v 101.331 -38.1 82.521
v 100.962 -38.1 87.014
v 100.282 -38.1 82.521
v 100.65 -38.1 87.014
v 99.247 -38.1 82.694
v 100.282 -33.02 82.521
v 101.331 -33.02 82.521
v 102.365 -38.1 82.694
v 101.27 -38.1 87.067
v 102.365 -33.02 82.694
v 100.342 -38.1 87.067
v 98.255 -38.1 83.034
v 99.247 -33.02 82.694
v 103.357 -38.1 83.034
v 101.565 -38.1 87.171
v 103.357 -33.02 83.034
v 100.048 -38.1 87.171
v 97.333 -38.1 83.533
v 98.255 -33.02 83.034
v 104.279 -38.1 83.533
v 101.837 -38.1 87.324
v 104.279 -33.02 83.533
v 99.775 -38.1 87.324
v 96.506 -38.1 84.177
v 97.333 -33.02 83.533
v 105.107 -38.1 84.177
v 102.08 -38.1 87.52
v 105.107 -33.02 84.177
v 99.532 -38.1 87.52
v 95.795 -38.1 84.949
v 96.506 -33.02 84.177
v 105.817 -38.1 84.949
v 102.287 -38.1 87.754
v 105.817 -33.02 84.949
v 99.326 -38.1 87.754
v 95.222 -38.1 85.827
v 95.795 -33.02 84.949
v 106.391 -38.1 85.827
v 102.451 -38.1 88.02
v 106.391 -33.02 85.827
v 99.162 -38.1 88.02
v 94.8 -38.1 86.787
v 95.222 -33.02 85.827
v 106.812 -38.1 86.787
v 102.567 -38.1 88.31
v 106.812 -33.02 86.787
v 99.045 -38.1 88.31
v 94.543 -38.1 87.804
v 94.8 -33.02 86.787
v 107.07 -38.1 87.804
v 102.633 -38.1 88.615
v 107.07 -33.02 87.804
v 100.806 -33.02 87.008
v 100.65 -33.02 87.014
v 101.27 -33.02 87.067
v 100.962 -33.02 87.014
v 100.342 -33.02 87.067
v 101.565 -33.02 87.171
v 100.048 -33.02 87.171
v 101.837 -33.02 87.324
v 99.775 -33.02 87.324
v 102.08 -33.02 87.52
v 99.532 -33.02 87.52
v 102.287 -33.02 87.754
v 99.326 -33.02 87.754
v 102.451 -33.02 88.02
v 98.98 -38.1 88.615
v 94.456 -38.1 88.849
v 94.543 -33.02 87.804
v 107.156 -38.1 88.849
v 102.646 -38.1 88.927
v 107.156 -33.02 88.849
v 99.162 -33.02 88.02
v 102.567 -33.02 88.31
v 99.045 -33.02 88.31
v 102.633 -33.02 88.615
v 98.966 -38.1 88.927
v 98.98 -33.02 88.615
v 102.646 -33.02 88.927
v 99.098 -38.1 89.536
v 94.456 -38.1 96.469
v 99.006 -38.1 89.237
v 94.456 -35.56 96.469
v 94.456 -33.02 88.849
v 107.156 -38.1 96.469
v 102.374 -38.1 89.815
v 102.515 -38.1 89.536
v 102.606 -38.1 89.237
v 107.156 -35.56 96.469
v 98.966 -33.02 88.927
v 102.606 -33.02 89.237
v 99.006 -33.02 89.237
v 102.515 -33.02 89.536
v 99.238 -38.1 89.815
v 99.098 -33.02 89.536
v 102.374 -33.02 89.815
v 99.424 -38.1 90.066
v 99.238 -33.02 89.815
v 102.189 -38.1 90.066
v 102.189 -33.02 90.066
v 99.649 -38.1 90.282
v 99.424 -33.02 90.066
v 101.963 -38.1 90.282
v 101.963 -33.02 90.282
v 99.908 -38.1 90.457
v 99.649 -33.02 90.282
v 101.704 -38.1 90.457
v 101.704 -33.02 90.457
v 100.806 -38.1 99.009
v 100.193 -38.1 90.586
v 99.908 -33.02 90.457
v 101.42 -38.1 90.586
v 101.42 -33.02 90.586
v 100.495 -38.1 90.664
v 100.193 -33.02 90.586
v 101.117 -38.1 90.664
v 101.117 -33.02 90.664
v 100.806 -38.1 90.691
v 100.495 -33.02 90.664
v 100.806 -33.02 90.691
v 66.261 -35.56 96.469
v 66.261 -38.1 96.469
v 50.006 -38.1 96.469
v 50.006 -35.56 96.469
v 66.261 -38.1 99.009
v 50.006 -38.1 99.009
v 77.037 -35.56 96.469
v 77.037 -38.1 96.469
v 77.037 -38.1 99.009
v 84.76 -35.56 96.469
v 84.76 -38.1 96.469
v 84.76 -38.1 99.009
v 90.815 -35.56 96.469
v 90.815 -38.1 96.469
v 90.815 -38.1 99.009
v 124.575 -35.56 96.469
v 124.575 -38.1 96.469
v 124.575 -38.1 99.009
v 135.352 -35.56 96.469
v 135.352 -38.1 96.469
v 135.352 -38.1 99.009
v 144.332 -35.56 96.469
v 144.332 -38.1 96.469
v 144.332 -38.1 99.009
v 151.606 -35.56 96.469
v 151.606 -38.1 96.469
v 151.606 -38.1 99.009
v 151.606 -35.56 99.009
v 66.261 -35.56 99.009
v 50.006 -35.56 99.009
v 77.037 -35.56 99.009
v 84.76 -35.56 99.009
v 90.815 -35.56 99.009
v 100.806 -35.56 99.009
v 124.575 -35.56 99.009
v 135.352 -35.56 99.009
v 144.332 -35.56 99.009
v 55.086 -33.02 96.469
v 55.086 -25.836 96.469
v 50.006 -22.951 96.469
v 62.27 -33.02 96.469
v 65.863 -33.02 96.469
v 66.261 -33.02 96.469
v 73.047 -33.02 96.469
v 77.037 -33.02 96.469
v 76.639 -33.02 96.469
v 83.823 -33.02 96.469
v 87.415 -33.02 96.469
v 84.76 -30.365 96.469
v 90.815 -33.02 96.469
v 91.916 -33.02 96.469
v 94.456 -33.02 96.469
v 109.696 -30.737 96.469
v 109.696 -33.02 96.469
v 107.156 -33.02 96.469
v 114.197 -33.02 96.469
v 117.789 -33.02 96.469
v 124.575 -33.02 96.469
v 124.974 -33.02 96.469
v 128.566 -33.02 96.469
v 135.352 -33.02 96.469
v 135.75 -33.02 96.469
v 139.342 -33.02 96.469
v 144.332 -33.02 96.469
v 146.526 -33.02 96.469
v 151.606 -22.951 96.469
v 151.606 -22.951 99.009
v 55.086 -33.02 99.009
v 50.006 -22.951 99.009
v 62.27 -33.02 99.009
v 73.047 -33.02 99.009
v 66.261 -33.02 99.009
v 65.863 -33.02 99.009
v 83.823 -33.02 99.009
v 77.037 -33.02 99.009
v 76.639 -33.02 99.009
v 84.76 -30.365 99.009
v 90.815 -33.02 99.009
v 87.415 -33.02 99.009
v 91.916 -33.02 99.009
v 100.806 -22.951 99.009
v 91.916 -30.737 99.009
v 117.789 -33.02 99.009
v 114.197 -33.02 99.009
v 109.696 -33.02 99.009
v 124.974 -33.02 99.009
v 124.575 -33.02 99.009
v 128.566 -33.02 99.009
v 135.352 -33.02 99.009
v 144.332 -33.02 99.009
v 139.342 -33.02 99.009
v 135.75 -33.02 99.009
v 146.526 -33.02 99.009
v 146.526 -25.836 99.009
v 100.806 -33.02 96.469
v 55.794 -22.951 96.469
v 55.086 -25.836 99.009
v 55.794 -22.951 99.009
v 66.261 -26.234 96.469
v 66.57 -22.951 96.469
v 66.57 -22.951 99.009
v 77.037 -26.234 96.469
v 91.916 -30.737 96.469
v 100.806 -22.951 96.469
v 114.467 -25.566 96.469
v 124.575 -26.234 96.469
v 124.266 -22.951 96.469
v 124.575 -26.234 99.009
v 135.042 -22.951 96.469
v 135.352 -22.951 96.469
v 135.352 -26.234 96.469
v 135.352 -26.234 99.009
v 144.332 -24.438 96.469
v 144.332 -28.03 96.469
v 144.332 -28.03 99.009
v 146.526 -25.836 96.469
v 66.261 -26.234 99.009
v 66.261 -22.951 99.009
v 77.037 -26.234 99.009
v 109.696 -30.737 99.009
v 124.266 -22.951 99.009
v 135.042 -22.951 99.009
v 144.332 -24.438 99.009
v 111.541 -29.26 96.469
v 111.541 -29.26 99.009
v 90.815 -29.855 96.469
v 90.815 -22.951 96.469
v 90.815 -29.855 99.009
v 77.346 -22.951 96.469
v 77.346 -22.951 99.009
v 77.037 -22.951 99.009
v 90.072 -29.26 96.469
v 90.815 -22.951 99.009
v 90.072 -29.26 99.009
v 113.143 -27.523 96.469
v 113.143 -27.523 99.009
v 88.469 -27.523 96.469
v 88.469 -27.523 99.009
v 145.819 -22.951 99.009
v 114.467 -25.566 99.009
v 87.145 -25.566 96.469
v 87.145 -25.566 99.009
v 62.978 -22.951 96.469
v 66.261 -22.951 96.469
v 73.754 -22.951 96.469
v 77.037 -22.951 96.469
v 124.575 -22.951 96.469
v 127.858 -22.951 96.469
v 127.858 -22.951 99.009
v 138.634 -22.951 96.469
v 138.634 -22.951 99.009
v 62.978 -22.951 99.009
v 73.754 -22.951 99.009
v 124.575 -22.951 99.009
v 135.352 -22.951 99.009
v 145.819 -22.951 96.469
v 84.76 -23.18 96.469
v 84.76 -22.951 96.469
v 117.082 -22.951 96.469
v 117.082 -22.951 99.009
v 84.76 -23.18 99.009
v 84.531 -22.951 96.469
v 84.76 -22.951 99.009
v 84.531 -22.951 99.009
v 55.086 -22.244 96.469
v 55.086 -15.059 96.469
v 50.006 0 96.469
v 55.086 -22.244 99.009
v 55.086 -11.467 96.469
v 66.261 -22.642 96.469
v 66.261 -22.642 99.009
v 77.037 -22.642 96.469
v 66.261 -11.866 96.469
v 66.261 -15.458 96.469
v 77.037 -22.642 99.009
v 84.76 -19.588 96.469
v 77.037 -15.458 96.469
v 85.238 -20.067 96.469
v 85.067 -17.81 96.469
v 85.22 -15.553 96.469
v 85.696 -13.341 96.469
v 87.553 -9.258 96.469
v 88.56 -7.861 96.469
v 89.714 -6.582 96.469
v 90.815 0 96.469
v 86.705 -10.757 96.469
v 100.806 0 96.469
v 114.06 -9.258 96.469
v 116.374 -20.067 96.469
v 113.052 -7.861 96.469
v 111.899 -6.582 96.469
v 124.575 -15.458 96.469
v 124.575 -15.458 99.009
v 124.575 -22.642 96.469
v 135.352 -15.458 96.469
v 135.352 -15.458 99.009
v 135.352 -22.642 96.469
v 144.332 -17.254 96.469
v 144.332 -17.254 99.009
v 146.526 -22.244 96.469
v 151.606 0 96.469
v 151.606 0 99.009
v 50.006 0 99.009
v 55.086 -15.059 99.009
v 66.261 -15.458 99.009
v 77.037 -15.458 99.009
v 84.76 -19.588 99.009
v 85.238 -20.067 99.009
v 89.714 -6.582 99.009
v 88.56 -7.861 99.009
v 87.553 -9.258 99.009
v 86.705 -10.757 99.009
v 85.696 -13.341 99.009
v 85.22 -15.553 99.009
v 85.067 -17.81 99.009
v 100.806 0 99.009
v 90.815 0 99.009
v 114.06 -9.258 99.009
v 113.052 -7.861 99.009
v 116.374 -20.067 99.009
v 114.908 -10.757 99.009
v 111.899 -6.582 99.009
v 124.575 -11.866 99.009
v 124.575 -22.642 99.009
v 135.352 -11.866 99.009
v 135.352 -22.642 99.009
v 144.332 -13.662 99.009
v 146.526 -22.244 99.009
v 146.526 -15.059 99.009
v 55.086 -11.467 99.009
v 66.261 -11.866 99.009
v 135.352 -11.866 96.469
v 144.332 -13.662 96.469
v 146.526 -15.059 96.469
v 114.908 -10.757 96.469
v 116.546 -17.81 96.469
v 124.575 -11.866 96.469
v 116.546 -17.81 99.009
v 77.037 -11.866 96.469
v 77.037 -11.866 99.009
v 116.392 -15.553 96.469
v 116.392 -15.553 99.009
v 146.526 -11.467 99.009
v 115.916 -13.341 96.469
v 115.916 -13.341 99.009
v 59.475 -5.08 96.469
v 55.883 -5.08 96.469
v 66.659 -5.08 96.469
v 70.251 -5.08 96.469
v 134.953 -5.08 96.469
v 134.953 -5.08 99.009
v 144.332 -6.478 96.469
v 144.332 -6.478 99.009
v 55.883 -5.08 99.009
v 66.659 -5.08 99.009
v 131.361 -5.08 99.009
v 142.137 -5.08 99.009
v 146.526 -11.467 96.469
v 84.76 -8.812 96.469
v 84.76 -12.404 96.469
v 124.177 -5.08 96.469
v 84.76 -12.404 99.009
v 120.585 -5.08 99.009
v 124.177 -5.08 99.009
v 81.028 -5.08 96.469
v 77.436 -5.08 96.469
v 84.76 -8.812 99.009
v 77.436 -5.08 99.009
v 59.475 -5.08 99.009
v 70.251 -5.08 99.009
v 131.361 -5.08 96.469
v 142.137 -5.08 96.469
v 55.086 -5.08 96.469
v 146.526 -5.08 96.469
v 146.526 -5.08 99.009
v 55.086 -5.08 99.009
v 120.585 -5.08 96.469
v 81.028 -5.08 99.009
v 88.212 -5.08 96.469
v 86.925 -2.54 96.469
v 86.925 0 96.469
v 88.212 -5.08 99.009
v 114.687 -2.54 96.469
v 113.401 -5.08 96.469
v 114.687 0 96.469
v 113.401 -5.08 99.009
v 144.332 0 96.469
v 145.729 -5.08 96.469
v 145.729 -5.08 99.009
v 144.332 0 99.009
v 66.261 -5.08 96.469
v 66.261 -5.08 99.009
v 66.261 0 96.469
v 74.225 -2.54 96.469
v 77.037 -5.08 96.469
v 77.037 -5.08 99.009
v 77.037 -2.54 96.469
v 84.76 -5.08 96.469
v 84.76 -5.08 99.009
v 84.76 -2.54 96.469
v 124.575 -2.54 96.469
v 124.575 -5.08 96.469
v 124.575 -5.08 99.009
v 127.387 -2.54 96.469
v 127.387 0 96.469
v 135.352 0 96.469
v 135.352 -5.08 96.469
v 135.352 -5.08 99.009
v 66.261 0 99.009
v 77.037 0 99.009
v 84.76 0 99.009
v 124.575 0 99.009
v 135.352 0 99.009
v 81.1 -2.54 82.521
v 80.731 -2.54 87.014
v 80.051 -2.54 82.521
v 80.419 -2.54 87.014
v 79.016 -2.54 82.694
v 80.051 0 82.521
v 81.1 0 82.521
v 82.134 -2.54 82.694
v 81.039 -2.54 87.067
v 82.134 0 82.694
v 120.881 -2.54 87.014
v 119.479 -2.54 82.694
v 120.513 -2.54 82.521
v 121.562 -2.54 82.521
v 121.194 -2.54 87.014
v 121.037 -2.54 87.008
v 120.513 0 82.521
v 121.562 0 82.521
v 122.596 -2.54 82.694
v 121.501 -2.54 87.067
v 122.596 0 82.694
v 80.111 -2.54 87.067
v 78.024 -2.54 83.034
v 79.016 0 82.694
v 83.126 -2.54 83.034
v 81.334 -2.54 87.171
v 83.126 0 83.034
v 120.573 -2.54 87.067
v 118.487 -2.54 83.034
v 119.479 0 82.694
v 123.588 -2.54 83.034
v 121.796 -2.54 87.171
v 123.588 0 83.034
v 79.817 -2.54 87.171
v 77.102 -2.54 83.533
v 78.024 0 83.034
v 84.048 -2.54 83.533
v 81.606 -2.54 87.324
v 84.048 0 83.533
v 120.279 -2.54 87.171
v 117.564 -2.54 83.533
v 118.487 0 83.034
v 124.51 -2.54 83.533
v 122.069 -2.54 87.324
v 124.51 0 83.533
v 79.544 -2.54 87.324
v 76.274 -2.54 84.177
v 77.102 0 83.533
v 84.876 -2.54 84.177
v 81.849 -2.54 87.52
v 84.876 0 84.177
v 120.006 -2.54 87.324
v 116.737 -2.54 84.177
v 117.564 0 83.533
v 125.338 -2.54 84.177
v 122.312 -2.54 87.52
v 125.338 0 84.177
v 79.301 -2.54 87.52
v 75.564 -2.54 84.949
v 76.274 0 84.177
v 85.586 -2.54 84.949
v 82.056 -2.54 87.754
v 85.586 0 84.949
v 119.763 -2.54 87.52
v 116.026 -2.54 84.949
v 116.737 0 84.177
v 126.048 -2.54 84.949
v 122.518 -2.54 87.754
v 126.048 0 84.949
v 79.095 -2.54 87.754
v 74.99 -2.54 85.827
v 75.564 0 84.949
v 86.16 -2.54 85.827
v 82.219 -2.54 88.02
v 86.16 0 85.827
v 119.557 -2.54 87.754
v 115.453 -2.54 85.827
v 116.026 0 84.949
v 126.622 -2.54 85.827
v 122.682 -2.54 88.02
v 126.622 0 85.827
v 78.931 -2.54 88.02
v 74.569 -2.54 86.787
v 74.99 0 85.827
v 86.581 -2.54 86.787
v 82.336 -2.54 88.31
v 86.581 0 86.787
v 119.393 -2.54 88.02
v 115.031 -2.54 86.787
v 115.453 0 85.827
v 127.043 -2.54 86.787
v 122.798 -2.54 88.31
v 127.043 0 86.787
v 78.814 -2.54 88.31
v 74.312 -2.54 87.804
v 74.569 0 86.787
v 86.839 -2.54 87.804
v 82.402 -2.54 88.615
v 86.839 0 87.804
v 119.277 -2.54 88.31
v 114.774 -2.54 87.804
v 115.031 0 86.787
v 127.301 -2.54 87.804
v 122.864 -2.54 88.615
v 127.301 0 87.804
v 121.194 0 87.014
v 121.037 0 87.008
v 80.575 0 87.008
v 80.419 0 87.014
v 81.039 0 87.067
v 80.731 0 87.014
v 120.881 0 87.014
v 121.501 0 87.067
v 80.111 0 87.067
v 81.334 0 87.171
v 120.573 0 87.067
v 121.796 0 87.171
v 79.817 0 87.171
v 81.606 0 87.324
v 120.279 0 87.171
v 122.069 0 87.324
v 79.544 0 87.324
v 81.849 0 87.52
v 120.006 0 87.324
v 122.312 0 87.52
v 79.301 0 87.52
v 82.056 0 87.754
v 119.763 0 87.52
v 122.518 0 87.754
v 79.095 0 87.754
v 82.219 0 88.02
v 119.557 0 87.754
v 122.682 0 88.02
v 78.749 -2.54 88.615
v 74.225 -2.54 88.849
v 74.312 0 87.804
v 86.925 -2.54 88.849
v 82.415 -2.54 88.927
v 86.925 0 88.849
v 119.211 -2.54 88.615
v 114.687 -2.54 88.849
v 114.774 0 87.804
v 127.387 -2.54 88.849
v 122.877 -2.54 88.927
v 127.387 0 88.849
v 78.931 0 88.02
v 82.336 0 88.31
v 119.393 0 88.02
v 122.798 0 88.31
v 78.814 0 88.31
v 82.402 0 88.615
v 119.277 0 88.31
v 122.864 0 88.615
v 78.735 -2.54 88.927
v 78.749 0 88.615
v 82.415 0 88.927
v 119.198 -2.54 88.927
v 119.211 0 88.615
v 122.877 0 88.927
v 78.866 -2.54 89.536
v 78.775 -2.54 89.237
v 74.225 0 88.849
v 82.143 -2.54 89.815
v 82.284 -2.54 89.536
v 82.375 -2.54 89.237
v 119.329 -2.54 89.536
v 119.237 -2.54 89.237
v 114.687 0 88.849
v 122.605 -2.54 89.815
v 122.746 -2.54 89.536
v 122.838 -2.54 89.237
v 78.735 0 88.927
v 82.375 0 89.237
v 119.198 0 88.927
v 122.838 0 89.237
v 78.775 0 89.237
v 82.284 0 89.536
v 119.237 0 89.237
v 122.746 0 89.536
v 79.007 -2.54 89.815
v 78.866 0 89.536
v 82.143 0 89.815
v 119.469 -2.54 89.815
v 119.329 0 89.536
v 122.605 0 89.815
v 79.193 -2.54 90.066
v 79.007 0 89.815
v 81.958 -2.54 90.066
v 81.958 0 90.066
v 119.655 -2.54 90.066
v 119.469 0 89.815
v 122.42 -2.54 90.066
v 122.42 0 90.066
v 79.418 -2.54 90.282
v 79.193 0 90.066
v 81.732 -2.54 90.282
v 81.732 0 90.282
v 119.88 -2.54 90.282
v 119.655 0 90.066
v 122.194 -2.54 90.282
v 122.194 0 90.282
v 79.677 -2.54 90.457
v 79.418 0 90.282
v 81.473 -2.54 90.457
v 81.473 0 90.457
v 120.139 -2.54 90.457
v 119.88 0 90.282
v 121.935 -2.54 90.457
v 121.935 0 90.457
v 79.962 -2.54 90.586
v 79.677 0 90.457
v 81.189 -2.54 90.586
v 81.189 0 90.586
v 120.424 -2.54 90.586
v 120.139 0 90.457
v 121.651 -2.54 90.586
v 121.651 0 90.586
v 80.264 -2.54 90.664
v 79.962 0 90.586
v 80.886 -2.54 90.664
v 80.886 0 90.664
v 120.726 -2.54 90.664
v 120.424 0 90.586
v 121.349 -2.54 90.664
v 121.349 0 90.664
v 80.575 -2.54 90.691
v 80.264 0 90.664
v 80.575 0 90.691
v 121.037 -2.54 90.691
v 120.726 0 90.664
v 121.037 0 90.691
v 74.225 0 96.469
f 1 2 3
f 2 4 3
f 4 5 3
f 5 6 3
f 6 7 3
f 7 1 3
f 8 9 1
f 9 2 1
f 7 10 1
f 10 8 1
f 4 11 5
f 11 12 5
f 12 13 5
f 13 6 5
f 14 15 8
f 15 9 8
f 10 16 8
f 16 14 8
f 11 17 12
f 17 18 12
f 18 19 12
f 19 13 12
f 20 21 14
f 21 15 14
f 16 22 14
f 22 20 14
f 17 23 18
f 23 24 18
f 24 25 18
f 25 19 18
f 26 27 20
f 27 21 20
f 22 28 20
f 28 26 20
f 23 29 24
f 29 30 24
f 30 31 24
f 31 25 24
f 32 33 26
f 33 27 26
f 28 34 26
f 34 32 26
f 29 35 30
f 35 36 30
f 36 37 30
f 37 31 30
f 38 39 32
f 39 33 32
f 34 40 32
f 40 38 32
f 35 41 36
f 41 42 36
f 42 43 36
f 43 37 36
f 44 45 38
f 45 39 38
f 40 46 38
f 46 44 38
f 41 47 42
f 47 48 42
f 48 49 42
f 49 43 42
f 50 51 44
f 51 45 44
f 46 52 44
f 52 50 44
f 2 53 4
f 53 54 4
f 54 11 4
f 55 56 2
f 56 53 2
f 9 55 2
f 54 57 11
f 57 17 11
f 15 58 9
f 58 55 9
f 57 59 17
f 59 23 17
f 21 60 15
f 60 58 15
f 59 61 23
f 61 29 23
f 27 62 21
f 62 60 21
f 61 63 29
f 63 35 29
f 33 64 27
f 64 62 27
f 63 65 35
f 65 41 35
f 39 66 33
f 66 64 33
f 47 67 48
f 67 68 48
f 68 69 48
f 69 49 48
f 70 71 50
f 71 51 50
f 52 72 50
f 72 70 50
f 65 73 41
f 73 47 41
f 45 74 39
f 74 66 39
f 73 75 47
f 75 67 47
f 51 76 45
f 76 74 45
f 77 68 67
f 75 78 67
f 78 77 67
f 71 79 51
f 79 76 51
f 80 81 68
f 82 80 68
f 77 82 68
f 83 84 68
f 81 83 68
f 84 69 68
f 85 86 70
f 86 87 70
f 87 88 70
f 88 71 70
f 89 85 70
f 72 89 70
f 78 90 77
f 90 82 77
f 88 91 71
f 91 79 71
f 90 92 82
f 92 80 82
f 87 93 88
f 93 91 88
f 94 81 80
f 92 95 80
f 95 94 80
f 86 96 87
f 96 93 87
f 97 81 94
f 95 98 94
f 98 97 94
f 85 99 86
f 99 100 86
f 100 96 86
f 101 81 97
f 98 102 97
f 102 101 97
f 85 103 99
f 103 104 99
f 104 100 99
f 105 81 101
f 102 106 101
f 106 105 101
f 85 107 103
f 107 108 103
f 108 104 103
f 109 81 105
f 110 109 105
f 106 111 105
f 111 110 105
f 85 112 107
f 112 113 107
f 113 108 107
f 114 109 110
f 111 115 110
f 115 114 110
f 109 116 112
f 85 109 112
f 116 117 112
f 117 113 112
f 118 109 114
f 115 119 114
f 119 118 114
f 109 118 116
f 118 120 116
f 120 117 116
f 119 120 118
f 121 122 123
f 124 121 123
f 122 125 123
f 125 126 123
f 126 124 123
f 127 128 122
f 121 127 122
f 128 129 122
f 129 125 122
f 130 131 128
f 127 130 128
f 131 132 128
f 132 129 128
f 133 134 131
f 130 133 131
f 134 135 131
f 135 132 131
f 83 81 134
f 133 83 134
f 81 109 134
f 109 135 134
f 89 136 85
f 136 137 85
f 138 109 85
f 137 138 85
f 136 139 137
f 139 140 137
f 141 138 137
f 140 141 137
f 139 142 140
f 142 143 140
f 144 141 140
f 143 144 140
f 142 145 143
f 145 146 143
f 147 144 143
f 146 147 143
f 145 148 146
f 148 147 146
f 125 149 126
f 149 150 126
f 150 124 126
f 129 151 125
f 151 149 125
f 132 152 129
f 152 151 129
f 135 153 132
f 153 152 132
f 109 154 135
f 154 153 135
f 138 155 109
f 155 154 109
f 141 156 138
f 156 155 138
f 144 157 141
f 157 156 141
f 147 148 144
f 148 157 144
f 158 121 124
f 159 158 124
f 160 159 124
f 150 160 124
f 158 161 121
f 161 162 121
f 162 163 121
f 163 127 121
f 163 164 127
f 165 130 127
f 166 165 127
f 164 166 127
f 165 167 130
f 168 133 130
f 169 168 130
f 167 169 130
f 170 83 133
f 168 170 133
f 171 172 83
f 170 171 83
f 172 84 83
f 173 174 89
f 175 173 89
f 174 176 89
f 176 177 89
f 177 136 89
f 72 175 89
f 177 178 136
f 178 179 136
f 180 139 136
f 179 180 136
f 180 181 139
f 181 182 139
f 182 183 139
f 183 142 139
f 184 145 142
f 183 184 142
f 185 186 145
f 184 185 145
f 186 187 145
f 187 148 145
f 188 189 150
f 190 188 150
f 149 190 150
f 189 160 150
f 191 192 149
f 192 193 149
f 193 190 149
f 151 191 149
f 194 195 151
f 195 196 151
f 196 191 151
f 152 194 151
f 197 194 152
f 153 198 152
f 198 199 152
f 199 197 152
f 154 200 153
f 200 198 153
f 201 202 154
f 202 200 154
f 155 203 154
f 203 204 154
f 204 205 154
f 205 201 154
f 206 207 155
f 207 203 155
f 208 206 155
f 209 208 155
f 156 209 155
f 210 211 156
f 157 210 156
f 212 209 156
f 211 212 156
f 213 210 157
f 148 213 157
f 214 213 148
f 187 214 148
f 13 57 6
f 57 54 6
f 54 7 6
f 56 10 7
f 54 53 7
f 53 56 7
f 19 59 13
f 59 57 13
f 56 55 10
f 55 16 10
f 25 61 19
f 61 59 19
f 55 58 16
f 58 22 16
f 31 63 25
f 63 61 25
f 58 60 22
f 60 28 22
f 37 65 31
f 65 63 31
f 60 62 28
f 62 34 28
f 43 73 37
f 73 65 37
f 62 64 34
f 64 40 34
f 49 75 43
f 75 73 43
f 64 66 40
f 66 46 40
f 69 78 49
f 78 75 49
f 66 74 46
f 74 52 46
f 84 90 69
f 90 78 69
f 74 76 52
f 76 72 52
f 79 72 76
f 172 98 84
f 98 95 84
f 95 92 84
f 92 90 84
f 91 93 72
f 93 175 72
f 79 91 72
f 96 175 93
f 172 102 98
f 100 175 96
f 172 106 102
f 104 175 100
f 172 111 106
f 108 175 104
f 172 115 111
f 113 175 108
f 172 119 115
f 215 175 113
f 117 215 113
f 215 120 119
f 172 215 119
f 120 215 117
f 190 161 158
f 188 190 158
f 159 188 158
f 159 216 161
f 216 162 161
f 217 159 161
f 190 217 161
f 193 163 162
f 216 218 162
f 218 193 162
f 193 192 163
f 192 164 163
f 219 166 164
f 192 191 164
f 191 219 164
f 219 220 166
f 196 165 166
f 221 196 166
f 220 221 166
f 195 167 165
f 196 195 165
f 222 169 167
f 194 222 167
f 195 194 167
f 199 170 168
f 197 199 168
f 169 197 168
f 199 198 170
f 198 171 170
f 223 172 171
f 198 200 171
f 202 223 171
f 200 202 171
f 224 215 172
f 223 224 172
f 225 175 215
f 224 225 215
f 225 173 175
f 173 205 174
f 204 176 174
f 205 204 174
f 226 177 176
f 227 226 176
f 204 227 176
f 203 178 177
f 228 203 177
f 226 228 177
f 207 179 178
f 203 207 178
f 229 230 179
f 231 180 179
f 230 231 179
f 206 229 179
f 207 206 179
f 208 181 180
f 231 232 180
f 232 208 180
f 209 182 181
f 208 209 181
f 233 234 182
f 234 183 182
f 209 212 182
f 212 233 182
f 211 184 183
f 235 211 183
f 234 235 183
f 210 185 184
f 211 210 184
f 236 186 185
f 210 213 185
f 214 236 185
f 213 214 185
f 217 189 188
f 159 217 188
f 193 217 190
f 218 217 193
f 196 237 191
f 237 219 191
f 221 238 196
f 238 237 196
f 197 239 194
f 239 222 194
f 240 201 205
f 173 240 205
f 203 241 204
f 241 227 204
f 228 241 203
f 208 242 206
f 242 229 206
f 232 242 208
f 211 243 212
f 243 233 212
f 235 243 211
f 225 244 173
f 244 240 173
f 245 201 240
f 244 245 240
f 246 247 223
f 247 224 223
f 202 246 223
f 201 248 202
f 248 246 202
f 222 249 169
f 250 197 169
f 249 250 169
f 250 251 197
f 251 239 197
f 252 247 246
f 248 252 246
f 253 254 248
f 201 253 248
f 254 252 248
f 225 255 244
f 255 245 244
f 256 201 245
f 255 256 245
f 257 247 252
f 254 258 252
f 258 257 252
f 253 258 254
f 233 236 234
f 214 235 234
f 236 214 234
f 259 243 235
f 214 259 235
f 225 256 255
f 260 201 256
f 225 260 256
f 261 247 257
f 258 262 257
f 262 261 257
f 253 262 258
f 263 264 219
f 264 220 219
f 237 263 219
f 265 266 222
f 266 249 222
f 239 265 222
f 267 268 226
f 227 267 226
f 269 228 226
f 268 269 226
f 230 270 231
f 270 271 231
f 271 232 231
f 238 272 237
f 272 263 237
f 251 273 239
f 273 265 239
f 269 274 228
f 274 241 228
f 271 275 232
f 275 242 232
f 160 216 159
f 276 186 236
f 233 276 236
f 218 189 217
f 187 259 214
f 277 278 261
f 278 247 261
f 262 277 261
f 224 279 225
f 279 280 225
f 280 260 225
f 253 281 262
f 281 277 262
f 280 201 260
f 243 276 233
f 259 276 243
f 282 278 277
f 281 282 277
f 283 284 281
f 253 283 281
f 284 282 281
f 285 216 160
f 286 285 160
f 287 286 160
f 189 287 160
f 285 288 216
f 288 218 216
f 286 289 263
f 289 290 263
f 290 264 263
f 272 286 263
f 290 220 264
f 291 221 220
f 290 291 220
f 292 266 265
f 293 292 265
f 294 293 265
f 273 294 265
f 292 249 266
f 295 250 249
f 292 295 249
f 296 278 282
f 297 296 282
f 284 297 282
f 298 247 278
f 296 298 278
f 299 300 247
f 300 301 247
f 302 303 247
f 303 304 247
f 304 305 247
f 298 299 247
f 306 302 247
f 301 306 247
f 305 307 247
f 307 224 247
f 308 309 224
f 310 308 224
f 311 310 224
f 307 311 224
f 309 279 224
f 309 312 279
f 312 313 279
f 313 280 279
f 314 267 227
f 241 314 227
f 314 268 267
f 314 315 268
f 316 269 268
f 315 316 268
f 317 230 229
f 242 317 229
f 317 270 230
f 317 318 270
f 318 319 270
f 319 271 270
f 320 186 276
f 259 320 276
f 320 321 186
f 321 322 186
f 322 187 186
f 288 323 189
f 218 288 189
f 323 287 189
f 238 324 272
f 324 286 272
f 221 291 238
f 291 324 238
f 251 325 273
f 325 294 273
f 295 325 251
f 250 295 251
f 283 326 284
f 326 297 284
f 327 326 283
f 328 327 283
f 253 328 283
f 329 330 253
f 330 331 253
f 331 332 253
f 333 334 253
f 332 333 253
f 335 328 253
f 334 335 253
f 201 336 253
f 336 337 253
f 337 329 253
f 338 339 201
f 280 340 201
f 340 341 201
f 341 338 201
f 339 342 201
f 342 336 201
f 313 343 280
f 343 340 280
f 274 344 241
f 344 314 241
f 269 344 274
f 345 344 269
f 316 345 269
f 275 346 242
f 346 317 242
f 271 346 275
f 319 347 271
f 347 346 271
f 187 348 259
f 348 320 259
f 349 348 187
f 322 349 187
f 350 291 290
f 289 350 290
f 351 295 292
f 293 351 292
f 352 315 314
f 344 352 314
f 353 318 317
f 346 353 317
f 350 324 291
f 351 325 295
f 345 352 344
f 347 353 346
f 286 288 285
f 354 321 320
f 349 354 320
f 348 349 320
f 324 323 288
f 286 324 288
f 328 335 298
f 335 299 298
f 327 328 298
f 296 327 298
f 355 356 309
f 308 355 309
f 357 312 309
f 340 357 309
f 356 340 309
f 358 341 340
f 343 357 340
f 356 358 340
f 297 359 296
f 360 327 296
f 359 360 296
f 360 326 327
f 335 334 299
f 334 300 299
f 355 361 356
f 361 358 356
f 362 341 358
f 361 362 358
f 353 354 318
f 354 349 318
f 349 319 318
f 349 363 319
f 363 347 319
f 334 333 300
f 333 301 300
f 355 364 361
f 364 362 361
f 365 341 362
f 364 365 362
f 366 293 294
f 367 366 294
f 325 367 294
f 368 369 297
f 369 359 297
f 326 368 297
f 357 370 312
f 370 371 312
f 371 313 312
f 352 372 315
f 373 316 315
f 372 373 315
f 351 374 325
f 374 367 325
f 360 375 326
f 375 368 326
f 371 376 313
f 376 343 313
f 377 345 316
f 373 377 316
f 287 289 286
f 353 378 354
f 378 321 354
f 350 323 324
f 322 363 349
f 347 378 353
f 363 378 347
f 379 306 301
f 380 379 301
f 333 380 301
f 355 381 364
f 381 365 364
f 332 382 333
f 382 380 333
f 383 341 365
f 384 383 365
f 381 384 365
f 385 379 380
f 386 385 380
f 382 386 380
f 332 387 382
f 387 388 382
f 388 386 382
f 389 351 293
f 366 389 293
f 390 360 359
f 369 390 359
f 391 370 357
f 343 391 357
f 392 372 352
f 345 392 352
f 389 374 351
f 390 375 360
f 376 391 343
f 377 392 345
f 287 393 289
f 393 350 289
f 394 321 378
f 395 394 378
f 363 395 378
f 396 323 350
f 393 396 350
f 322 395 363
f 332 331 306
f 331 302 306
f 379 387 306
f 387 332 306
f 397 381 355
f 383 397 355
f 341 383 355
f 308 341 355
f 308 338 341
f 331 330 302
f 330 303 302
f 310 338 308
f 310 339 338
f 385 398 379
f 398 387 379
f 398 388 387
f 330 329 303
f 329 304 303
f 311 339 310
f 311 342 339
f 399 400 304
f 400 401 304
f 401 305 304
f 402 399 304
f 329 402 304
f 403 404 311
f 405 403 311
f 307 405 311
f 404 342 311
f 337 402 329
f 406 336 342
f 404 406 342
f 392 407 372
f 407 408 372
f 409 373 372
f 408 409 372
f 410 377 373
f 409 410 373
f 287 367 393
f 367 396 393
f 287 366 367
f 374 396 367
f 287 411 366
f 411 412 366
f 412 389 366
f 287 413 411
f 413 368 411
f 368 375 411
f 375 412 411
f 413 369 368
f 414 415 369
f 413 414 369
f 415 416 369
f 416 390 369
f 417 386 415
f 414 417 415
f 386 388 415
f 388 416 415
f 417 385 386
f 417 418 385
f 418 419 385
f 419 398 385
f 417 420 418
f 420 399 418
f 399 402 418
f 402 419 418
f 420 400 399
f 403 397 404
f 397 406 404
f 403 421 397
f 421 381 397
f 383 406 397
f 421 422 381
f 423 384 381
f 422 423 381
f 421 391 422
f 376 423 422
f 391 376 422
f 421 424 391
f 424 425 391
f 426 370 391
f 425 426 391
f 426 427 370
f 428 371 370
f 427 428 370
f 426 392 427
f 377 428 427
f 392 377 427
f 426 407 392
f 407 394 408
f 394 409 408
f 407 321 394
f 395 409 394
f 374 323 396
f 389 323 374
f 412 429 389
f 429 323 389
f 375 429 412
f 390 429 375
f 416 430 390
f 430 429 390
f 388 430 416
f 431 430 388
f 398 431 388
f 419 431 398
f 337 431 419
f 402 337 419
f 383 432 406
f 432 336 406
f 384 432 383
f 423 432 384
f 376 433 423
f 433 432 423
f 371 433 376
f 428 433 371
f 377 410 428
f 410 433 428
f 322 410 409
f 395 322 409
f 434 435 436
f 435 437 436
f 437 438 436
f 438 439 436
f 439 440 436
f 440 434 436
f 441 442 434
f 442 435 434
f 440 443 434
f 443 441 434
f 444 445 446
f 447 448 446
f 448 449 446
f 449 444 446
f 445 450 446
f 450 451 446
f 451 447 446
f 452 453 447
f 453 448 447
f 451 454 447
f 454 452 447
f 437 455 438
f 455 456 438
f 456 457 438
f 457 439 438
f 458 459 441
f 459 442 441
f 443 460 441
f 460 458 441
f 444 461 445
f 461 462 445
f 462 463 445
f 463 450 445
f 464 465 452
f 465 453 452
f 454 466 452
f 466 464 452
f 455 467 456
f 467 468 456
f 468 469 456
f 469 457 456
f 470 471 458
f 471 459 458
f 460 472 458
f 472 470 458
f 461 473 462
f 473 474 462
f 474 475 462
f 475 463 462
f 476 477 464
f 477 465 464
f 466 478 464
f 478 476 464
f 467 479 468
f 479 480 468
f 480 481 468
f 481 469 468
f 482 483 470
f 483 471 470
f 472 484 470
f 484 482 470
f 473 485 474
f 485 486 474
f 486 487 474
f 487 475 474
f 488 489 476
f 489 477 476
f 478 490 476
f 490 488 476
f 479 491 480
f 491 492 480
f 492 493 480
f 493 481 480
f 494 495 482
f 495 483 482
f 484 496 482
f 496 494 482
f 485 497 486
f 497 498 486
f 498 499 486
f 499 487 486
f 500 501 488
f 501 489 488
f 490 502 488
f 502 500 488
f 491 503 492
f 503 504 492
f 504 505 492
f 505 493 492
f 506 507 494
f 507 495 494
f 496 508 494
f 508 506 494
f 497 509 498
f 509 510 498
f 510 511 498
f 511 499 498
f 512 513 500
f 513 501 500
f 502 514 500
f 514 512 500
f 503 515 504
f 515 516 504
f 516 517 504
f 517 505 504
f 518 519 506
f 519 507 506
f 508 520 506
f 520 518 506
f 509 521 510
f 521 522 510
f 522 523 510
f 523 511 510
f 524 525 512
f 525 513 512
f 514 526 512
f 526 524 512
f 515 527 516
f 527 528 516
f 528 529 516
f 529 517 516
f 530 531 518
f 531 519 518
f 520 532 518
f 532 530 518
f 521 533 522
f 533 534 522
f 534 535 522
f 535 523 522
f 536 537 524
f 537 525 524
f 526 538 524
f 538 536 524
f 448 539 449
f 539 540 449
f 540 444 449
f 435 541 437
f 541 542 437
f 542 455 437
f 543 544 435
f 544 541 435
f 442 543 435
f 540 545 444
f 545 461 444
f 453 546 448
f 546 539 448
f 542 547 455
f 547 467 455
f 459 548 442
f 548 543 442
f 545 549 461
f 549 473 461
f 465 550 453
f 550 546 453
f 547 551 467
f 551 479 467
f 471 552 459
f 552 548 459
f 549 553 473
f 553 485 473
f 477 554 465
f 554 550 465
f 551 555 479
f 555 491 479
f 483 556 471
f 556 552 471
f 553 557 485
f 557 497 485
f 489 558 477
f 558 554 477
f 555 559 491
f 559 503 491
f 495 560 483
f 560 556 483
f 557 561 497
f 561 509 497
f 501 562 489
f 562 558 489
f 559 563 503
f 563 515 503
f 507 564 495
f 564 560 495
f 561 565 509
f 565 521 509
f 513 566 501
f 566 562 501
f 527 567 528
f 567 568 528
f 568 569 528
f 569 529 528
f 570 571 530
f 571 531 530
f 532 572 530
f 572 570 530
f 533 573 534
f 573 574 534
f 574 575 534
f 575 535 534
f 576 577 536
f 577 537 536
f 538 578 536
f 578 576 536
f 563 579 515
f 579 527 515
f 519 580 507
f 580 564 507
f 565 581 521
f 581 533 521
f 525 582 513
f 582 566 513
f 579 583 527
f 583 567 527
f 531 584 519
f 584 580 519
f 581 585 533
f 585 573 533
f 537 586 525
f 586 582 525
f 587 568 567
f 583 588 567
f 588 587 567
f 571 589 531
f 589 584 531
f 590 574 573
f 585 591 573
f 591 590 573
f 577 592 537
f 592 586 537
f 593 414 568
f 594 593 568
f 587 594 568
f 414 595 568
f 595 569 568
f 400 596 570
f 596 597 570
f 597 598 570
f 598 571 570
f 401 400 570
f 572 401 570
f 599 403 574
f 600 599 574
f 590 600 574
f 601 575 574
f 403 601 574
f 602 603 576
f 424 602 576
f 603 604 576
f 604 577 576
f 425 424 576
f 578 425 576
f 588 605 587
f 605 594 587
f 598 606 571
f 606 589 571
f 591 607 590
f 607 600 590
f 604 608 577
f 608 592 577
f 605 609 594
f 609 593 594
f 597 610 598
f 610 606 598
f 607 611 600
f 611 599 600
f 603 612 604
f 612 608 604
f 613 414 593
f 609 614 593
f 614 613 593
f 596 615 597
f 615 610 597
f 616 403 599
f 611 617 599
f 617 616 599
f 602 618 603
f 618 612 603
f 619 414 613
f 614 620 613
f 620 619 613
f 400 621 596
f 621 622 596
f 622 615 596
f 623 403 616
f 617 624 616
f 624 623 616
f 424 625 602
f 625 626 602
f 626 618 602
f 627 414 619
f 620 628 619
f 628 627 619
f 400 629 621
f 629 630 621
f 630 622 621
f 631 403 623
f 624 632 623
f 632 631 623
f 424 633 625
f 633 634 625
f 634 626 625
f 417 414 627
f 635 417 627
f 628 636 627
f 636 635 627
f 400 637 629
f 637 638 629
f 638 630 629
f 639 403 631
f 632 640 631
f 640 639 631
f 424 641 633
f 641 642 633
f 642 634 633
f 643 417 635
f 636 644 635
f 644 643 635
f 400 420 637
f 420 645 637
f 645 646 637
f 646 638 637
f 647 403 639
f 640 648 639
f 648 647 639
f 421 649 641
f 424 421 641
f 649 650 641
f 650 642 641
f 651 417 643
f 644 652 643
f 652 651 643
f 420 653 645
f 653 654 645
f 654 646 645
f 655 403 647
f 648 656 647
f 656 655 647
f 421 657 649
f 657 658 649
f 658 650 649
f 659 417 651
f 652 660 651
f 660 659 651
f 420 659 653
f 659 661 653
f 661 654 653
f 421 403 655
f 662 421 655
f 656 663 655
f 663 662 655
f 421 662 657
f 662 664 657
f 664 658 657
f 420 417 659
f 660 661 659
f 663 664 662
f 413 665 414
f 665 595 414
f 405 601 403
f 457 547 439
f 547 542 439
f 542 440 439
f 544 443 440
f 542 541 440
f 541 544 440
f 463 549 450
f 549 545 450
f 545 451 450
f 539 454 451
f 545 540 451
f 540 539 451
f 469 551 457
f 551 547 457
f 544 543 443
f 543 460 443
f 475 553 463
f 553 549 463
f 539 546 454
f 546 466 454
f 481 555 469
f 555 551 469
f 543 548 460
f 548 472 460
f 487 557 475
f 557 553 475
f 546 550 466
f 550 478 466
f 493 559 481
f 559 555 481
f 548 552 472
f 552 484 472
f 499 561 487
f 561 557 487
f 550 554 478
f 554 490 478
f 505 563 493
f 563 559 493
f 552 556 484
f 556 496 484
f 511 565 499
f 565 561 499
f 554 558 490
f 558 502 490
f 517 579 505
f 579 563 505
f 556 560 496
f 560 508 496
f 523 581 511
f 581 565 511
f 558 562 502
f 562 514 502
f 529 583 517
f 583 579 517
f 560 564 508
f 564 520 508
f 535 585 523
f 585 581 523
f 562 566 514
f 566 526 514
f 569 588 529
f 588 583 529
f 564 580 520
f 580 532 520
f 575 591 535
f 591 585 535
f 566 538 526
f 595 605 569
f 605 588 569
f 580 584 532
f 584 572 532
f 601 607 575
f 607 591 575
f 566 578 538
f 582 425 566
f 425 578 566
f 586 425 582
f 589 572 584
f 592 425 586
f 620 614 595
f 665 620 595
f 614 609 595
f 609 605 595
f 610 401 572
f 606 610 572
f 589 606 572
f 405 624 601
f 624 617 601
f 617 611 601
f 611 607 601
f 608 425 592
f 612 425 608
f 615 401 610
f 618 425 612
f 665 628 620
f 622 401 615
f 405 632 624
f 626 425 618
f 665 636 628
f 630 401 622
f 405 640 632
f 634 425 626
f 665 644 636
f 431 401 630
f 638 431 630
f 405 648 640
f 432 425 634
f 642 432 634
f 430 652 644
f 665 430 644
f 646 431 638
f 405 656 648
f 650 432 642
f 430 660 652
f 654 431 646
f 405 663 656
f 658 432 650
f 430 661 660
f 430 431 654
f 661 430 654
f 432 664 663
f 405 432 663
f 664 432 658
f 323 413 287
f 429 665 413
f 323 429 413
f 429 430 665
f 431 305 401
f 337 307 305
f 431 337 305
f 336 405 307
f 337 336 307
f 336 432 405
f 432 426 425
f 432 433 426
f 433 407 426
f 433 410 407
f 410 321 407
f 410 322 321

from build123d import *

# Parameters (mm, degrees)
SKETCH1_R               = 13.8795
SKETCH1_R_2             = 13.8811
SKETCH1_R_3             = 2.54
SKETCH1_W               = 163.5125
SKETCH1_H               = 30.6038
BOSS_EXTRUDE1_DEPTH     = 5.08
SKETCH3_W               = 101.6
SKETCH3_H               = 2.54
BOSS_EXTRUDE4_DEPTH     = 38.1
SKETCH7_W               = 7.620008307
SKETCH7_H               = 5.08
BOSS_EXTRUDE5_DEPTH     = 11.43
FILLET5_RADIUS          = 3.810004153
FILLET5_LENGTH          = 5.08
BOSS_EXTRUDE6_DEPTH     = 2.54
SKETCH15_R              = 1.8415
BOSS_EXTRUDE7_DEPTH     = 2.54
CUT_EXTRUDE3_START      = -5.08
SKETCH19_R              = 1.8415
CUT_EXTRUDE3_DEPTH      = 5.08
SKETCH12_W              = 155.030782426
SKETCH12_H              = 26.837151361
CUT_EXTRUDE4_DEPTH      = 229.935471644
CUT_EXTRUDE5_DEPTH      = 2.54
FILLET6_R               = 2.54
BOSS_EXTRUDE8_DEPTH     = 5.08
CUT_EXTRUDE6_DEPTH      = 186.437362631
CUT_EXTRUDE6_DEPTH_BACK = 186.437362631
SKETCH23_R              = 1.8415
SKETCH25_R              = 14.498901864
CUT_EXTRUDE7_DEPTH      = 2.54
SKETCH26_W              = 2.812159358
SKETCH26_H              = 2.54
SKETCH26_W_2            = 3.243179234
BOSS_EXTRUDE9_DEPTH     = 38.1


with BuildPart() as part:
    # Sketch1 → Boss-Extrude1 (new body)
    with BuildSketch(Plane(origin=(0, 0, 0), x_dir=(1, 0, 0), z_dir=(0, 1, 0))):
        with BuildLine():
            Line((0, 0), (201.6125, 0))
            Line((201.6125, 0), (201.6125, -45.847))
            Line((201.6125, -45.847), (166.66845, -45.847))
            Line((166.66845, -45.847), (166.66845, -83.7692))
            ThreePointArc((166.66845, -83.7692), (162.204757345, -94.545507345), (151.42845, -99.0092))
            Line((151.42845, -99.0092), (50.18405, -99.0092))
            ThreePointArc((50.18405, -99.0092), (39.407742655, -94.545507345), (34.94405, -83.7692))
            Line((34.94405, -83.7692), (34.94405, -45.847))
            Line((34.94405, -45.847), (0, -45.847))
            Line((0, -45.847), (0, 0))
        make_face()
        with Locations(Location((60.34405, -72.4265, 0), (0, 0, 270))):
            Circle(SKETCH1_R, mode=Mode.SUBTRACT)
        with Locations(Location((141.26845, -72.4281, 0), (0, 0, 270))):
            Circle(SKETCH1_R_2, mode=Mode.SUBTRACT)
        with Locations(Location((13.096875, -9.7139, 0), (0, 0, 270))):
            Circle(SKETCH1_R_3, mode=Mode.SUBTRACT)
        with Locations(Location((188.515625, -9.7139, 0), (0, 0, 270))):
            Circle(SKETCH1_R_3, mode=Mode.SUBTRACT)
        with Locations(Location((13.096875, -36.1299, 0), (0, 0, 270))):
            Circle(SKETCH1_R_3, mode=Mode.SUBTRACT)
        with Locations(Location((188.515625, -36.1299, 0), (0, 0, 270))):
            Circle(SKETCH1_R_3, mode=Mode.SUBTRACT)
        with Locations(Location((100.80625, -72.4281, 0), (0, 0, 270))):
            Circle(SKETCH1_R_2, mode=Mode.SUBTRACT)
        with Locations((100.80625, -22.9219)):
            Rectangle(SKETCH1_W, SKETCH1_H, mode=Mode.SUBTRACT)
    extrude(amount=BOSS_EXTRUDE1_DEPTH)

    # Sketch3 → Boss-Extrude4 (add)
    with BuildSketch(Plane(origin=(0, 0, 198.0184), x_dir=(-1, 0, 0), z_dir=(0, 1, 0))):
        with Locations((-100.80625, -100.2792)):
            Rectangle(SKETCH3_W, SKETCH3_H)
    extrude(amount=-BOSS_EXTRUDE4_DEPTH)

    # Sketch7 → Boss-Extrude5 (add)
    with BuildSketch(Plane(origin=(0, 0, 99.0092), x_dir=(1, 0, 0), z_dir=(0, 0, -1))):
        with Locations((100.806245847, 35.56)):
            Rectangle(SKETCH7_W, SKETCH7_H)
    extrude(amount=BOSS_EXTRUDE5_DEPTH)

    # Fillet5: full round fillet: the end face becomes a half cylinder, R = half its width
    fillet5_face = Plane((100.806245847, -35.56, 87.5792), x_dir=(0, 1, 0), z_dir=(0, 0, -1))  # on the end face: x along it, z out of the body
    fillet5_slab = fillet5_face.offset(-FILLET5_RADIUS / 2) * Box(FILLET5_LENGTH, 2 * FILLET5_RADIUS, FILLET5_RADIUS, mode=Mode.PRIVATE)  # the body's end, R deep
    fillet5_round = Plane((100.806245847, -35.56, 91.389204153), x_dir=(0, 0, -1), z_dir=(0, 1, 0)) * Cylinder(FILLET5_RADIUS, FILLET5_LENGTH, mode=Mode.PRIVATE)  # its axis R under the face
    add(fillet5_slab - fillet5_round, mode=Mode.SUBTRACT)

    # Sketch14 → Boss-Extrude6 (add)
    with BuildSketch(Plane(origin=(0, 0, 99.0092), x_dir=(-1, 0, 0), z_dir=(0, 0, -1))):
        with BuildLine():
            Line((-106.692297799, -23.852483199), (-108.165059803, -25.325245202))
            ThreePointArc((-108.165059803, -25.325245202), (-108.695299399, -24.799048835), (-109.188003193, -24.237551179))
            Line((-109.188003193, -24.237551179), (-111.016232612, -25.73340078))
            ThreePointArc((-111.016232612, -25.73340078), (-112.008576056, -24.346487635), (-112.813712744, -22.843148519))
            Line((-112.813712744, -22.843148519), (-110.663621263, -21.864835961))
            ThreePointArc((-110.663621263, -21.864835961), (-111.169570673, -20.523896068), (-111.494018753, -19.127888173))
            Line((-111.494018753, -19.127888173), (-113.825236675, -19.509217219))
            ThreePointArc((-113.825236675, -19.509217219), (-113.991174734, -17.81194348), (-113.936774001, -16.107445271))
            Line((-113.936774001, -16.107445271), (-111.585583879, -16.335247483))
            ThreePointArc((-111.585583879, -16.335247483), (-111.353278975, -14.920984767), (-110.936255307, -13.549782426))
            Line((-110.936255307, -13.549782426), (-113.145813772, -12.714414106))
            ThreePointArc((-113.145813772, -12.714414106), (-112.440883477, -11.161562901), (-111.541521956, -9.712624518))
            Line((-111.541521956, -9.712624518), (-109.619232687, -11.085502082))
            ThreePointArc((-109.619232687, -11.085502082), (-108.71091938, -9.976867094), (-107.664165119, -8.997882867))
            Line((-107.664165119, -8.997882867), (-109.160014721, -7.169653447))
            ThreePointArc((-109.160014721, -7.169653447), (-107.773101576, -6.177310003), (-106.26976246, -5.372173315))
            Line((-106.26976246, -5.372173315), (-105.291449901, -7.522264796))
            ThreePointArc((-105.291449901, -7.522264796), (-103.950510009, -7.016315387), (-102.554502114, -6.691867307))
            Line((-102.554502114, -6.691867307), (-102.93583116, -4.360649385))
            ThreePointArc((-102.93583116, -4.360649385), (-101.238557421, -4.194711325), (-99.534059212, -4.249112058))
            Line((-99.534059212, -4.249112058), (-99.761861424, -6.600302181))
            ThreePointArc((-99.761861424, -6.600302181), (-98.347598708, -6.832607085), (-96.976396367, -7.249630753))
            Line((-96.976396367, -7.249630753), (-96.141028047, -5.040072288))
            ThreePointArc((-96.141028047, -5.040072288), (-94.588176842, -5.745002582), (-93.139238459, -6.644364103))
            Line((-93.139238459, -6.644364103), (-94.512116023, -8.566653372))
            ThreePointArc((-94.512116023, -8.566653372), (-93.403481035, -9.474966679), (-92.424496807, -10.52172094))
            Line((-92.424496807, -10.52172094), (-90.596267388, -9.025871338))
            ThreePointArc((-90.596267388, -9.025871338), (-89.603923944, -10.412784483), (-88.798787256, -11.9161236))
            Line((-88.798787256, -11.9161236), (-90.948878737, -12.894436158))
            ThreePointArc((-90.948878737, -12.894436158), (-90.442929327, -14.23537605), (-90.118481247, -15.631383945))
            Line((-90.118481247, -15.631383945), (-87.787263325, -15.250054899))
            ThreePointArc((-87.787263325, -15.250054899), (-87.621325266, -16.947328638), (-87.675725999, -18.651826847))
            Line((-87.675725999, -18.651826847), (-90.026916121, -18.424024635))
            ThreePointArc((-90.026916121, -18.424024635), (-90.261418035, -19.847693028), (-90.683092324, -21.227553033))
            Line((-90.683092324, -21.227553033), (-88.475027465, -22.066861331))
            ThreePointArc((-88.475027465, -22.066861331), (-89.182726542, -23.618452644), (-90.084671181, -25.065784483))
            Line((-90.084671181, -25.065784483), (-92.004508517, -23.689480212))
            ThreePointArc((-92.004508517, -23.689480212), (-92.446198552, -24.26398978), (-92.925321338, -24.807674144))
            Line((-92.925321338, -24.807674144), (-94.354515121, -23.023521367))
            ThreePointArc((-94.354515121, -23.023521367), (-93.409906556, -21.784451479), (-92.300984022, -20.689978846))
            Line((-92.300984022, -20.689978846), (-92.300984022, -12.009378674))
            ThreePointArc((-92.300984022, -12.009378674), (-96.99616691, -10.159066764), (-100.80625, -6.84973702))
            ThreePointArc((-100.80625, -6.84973702), (-104.633502919, -10.130984342), (-109.311759392, -12.009378674))
            Line((-109.311759392, -12.009378674), (-109.311759392, -20.689978846))
            ThreePointArc((-109.311759392, -20.689978846), (-107.900903874, -22.187470719), (-106.692297799, -23.852483199))
        make_face()
        with BuildLine():
            Line((-100.80625, -23.220768427), (-99.599369927, -22.380573493))
            Line((-99.599369927, -22.380573493), (-99.599369927, -18.3831432))
            Line((-99.599369927, -18.3831432), (-94.428037288, -16.022579614))
            Line((-94.428037288, -16.022579614), (-95.257330485, -18.716255471))
            Line((-95.257330485, -18.716255471), (-98.169049816, -19.087499686))
            Line((-98.169049816, -19.087499686), (-98.169049816, -30.877249674))
            Line((-98.169049816, -30.877249674), (-98.113370072, -30.877249674))
            ThreePointArc((-98.113370072, -30.877249674), (-96.397994117, -25.717029016), (-93.380333496, -21.193300875))
            Line((-93.380333496, -21.193300875), (-93.380333496, -12.307821257))
            ThreePointArc((-93.380333496, -12.307821257), (-97.539082277, -10.495406691), (-100.80625, -7.348081946))
            ThreePointArc((-100.80625, -7.348081946), (-104.073417723, -10.495406691), (-108.232166504, -12.307821257))
            Line((-108.232166504, -12.307821257), (-108.232166504, -21.193300875))
            ThreePointArc((-108.232166504, -21.193300875), (-105.214505883, -25.717029016), (-103.499129928, -30.877249674))
            Line((-103.499129928, -30.877249674), (-103.443450184, -30.877249674))
            Line((-103.443450184, -30.877249674), (-103.443450184, -19.087499686))
            Line((-103.443450184, -19.087499686), (-106.355169515, -18.716255471))
            Line((-106.355169515, -18.716255471), (-107.184462712, -16.022579614))
            Line((-107.184462712, -16.022579614), (-102.013130073, -18.3831432))
            Line((-102.013130073, -18.3831432), (-102.013130073, -22.380573493))
            Line((-102.013130073, -22.380573493), (-100.80625, -23.220768427))
        make_face()
    extrude(amount=-BOSS_EXTRUDE6_DEPTH)

    # Sketch15 → Boss-Extrude7 (add)
    # profile 1 of 2: a face of its own
    with BuildSketch(Plane.XZ):
        with BuildLine():
            Line((114.68735, 88.8492), (114.68735, 96.4692))
            Line((114.68735, 96.4692), (127.38735, 96.4692))
            Line((127.38735, 96.4692), (127.38735, 88.8492))
            ThreePointArc((127.38735, 88.8492), (121.03735, 82.4992), (114.68735, 88.8492))
        make_face()
        with Locations(Location((121.03735, 88.8492, 0), (0, 0, 270))):
            Circle(SKETCH15_R, mode=Mode.SUBTRACT)
    # profile 2 of 2: a face of its own
    with BuildSketch(Plane.XZ):
        with BuildLine():
            Line((74.22515, 96.4692), (86.92515, 96.4692))
            Line((86.92515, 96.4692), (86.92515, 88.8492))
            ThreePointArc((86.92515, 88.8492), (80.57515, 82.4992), (74.22515, 88.8492))
            Line((74.22515, 88.8492), (74.22515, 96.4692))
        make_face()
        with Locations(Location((80.57515, 88.8492, 0), (0, 0, 90))):
            Circle(SKETCH15_R, mode=Mode.SUBTRACT)
    extrude(amount=BOSS_EXTRUDE7_DEPTH)

    # Sketch19 → Cut-Extrude3 (cut)
    with BuildSketch(Plane.XZ.offset(CUT_EXTRUDE3_START)):
        with Locations(Location((80.57515, 88.8492, 0), (0, 0, 90))):
            Circle(SKETCH19_R)
        with Locations(Location((121.03735, 88.8492, 0), (0, 0, 270))):
            Circle(SKETCH19_R)
    extrude(amount=CUT_EXTRUDE3_DEPTH, mode=Mode.SUBTRACT)

    # Sketch12 → Cut-Extrude4 (cut, through all)
    with BuildSketch(Plane(origin=(201.6125, 0, 0), x_dir=(0, 0, -1), z_dir=(1, 0, 0))):
        with Locations((-77.515391213, 13.418575681)):
            Rectangle(SKETCH12_W, SKETCH12_H)
    extrude(amount=-CUT_EXTRUDE4_DEPTH, mode=Mode.SUBTRACT)

    # Sketch21 → Cut-Extrude5 (cut)
    with BuildSketch(Plane.XY.offset(99.0092)):
        Polygon((55.08625, -33.02), (55.08625, -25.835795103), (62.270454897, -33.02), align=None)
        Polygon((55.08625, -5.08), (55.883069587, -5.08), (83.823069587, -33.02), (76.638864691, -33.02), (55.08625, -11.467385309), align=None)
        with BuildLine():
            Line((91.916241693, -33.02), (91.916241693, -30.737077601))
            ThreePointArc((91.916241693, -30.737077601), (89.237970167, -28.421401444), (87.1450505, -25.565673567))
            Line((87.1450505, -25.565673567), (66.659376933, -5.08))
            Line((66.659376933, -5.08), (59.475172036, -5.08))
            Line((59.475172036, -5.08), (87.415172036, -33.02))
            Line((87.415172036, -33.02), (91.916241693, -33.02))
        make_face()
        Polygon((146.52625, -5.08), (145.729430413, -5.08), (117.789430413, -33.02), (124.973635309, -33.02), (146.52625, -11.467385309), align=None)
        with BuildLine():
            Line((109.69625, -33.02), (114.197327964, -33.02))
            Line((114.197327964, -33.02), (142.137327964, -5.08))
            Line((142.137327964, -5.08), (134.953123067, -5.08))
            Line((134.953123067, -5.08), (114.4674495, -25.565673567))
            ThreePointArc((114.4674495, -25.565673567), (112.374526421, -28.421405143), (109.69625, -30.737083287))
            Line((109.69625, -30.737083287), (109.69625, -33.02))
        make_face()
        Polygon((146.52625, -33.02), (146.52625, -25.835795103), (139.342045103, -33.02), align=None)
        Polygon((135.749942655, -33.02), (146.52625, -22.243692655), (146.52625, -15.059487758), (128.565737758, -33.02), align=None)
        with BuildLine():
            Line((124.176815722, -5.08), (115.916182775, -13.340632947))
            ThreePointArc((115.916182775, -13.340632947), (116.509577502, -16.678871551), (116.374281129, -20.06673949))
            Line((116.374281129, -20.06673949), (131.361020619, -5.08))
            Line((131.361020619, -5.08), (124.176815722, -5.08))
        make_face()
        with BuildLine():
            Line((120.584713274, -5.08), (114.907893678, -10.756819596))
            ThreePointArc((114.907893678, -10.756819596), (113.575134343, -8.545454533), (111.89877754, -6.581730837))
            Line((111.89877754, -6.581730837), (113.400508377, -5.08))
            Line((113.400508377, -5.08), (120.584713274, -5.08))
        make_face()
        Polygon((65.862557345, -33.02), (55.08625, -22.243692655), (55.08625, -15.059487758), (73.046762242, -33.02), align=None)
        with BuildLine():
            Line((70.251479381, -5.08), (85.238218871, -20.06673949))
            ThreePointArc((85.238218871, -20.06673949), (85.102922498, -16.678871551), (85.696317225, -13.340632947))
            Line((85.696317225, -13.340632947), (77.435684278, -5.08))
            Line((77.435684278, -5.08), (70.251479381, -5.08))
        make_face()
        with BuildLine():
            Line((81.027786726, -5.08), (86.704606322, -10.756819596))
            ThreePointArc((86.704606322, -10.756819596), (88.037365657, -8.545454533), (89.71372246, -6.581730837))
            Line((89.71372246, -6.581730837), (88.211991623, -5.08))
            Line((88.211991623, -5.08), (81.027786726, -5.08))
        make_face()
    extrude(amount=-CUT_EXTRUDE5_DEPTH, mode=Mode.SUBTRACT)

    # Fillet6
    fillet6_edges = [part.edges().sort_by_distance(p)[0] for p in [
        (151.60625, -19.05, 99.0092),
        (50.00625, -19.05, 99.0092),
    ]]
    fillet(fillet6_edges, radius=FILLET6_R - 0.0001)  # a hair under: the kernel refuses the full size

    # Sketch22 → Boss-Extrude8 (add)
    with BuildSketch(Plane(origin=(0, -33.02, 0), x_dir=(1, 0, 0), z_dir=(0, 1, 0))):
        with BuildLine():
            Line((94.45625, -96.4692), (94.45625, -88.8492))
            ThreePointArc((94.45625, -88.8492), (100.80625, -82.4992), (107.15625, -88.8492))
            Line((107.15625, -88.8492), (107.15625, -96.4692))
            Line((107.15625, -96.4692), (94.45625, -96.4692))
        make_face()
    extrude(amount=-BOSS_EXTRUDE8_DEPTH)

    # Sketch23 → Cut-Extrude6 (cut, two sides: drawn at the far end of the back side and taken through both)
    with BuildSketch(Plane(origin=(0, -33.02, 0), x_dir=(1, 0, 0), z_dir=(0, 1, 0)).offset(-CUT_EXTRUDE6_DEPTH_BACK)):
        with Locations(Location((100.80625, -88.8492, 0), (0, 0, 270))):
            Circle(SKETCH23_R)
    extrude(amount=CUT_EXTRUDE6_DEPTH + CUT_EXTRUDE6_DEPTH_BACK, mode=Mode.SUBTRACT)

    # Sketch25 → Cut-Extrude7 (cut)
    with BuildSketch(Plane.XY.offset(99.0092)):
        with Locations((100.80625, -17.748386051)):
            Circle(SKETCH25_R)
    extrude(amount=CUT_EXTRUDE7_DEPTH, mode=Mode.SUBTRACT)

    # Sketch26 → Boss-Extrude9 (add)
    with BuildSketch(Plane(origin=(0, 0, 0), x_dir=(1, 0, 0), z_dir=(0, 1, 0))):
        with Locations((51.412329679, -97.7392)):
            Rectangle(SKETCH26_W, SKETCH26_H)
        with Locations((149.984660383, -97.7392)):
            Rectangle(SKETCH26_W_2, SKETCH26_H)
    extrude(amount=-BOSS_EXTRUDE9_DEPTH)


solid = part.part
